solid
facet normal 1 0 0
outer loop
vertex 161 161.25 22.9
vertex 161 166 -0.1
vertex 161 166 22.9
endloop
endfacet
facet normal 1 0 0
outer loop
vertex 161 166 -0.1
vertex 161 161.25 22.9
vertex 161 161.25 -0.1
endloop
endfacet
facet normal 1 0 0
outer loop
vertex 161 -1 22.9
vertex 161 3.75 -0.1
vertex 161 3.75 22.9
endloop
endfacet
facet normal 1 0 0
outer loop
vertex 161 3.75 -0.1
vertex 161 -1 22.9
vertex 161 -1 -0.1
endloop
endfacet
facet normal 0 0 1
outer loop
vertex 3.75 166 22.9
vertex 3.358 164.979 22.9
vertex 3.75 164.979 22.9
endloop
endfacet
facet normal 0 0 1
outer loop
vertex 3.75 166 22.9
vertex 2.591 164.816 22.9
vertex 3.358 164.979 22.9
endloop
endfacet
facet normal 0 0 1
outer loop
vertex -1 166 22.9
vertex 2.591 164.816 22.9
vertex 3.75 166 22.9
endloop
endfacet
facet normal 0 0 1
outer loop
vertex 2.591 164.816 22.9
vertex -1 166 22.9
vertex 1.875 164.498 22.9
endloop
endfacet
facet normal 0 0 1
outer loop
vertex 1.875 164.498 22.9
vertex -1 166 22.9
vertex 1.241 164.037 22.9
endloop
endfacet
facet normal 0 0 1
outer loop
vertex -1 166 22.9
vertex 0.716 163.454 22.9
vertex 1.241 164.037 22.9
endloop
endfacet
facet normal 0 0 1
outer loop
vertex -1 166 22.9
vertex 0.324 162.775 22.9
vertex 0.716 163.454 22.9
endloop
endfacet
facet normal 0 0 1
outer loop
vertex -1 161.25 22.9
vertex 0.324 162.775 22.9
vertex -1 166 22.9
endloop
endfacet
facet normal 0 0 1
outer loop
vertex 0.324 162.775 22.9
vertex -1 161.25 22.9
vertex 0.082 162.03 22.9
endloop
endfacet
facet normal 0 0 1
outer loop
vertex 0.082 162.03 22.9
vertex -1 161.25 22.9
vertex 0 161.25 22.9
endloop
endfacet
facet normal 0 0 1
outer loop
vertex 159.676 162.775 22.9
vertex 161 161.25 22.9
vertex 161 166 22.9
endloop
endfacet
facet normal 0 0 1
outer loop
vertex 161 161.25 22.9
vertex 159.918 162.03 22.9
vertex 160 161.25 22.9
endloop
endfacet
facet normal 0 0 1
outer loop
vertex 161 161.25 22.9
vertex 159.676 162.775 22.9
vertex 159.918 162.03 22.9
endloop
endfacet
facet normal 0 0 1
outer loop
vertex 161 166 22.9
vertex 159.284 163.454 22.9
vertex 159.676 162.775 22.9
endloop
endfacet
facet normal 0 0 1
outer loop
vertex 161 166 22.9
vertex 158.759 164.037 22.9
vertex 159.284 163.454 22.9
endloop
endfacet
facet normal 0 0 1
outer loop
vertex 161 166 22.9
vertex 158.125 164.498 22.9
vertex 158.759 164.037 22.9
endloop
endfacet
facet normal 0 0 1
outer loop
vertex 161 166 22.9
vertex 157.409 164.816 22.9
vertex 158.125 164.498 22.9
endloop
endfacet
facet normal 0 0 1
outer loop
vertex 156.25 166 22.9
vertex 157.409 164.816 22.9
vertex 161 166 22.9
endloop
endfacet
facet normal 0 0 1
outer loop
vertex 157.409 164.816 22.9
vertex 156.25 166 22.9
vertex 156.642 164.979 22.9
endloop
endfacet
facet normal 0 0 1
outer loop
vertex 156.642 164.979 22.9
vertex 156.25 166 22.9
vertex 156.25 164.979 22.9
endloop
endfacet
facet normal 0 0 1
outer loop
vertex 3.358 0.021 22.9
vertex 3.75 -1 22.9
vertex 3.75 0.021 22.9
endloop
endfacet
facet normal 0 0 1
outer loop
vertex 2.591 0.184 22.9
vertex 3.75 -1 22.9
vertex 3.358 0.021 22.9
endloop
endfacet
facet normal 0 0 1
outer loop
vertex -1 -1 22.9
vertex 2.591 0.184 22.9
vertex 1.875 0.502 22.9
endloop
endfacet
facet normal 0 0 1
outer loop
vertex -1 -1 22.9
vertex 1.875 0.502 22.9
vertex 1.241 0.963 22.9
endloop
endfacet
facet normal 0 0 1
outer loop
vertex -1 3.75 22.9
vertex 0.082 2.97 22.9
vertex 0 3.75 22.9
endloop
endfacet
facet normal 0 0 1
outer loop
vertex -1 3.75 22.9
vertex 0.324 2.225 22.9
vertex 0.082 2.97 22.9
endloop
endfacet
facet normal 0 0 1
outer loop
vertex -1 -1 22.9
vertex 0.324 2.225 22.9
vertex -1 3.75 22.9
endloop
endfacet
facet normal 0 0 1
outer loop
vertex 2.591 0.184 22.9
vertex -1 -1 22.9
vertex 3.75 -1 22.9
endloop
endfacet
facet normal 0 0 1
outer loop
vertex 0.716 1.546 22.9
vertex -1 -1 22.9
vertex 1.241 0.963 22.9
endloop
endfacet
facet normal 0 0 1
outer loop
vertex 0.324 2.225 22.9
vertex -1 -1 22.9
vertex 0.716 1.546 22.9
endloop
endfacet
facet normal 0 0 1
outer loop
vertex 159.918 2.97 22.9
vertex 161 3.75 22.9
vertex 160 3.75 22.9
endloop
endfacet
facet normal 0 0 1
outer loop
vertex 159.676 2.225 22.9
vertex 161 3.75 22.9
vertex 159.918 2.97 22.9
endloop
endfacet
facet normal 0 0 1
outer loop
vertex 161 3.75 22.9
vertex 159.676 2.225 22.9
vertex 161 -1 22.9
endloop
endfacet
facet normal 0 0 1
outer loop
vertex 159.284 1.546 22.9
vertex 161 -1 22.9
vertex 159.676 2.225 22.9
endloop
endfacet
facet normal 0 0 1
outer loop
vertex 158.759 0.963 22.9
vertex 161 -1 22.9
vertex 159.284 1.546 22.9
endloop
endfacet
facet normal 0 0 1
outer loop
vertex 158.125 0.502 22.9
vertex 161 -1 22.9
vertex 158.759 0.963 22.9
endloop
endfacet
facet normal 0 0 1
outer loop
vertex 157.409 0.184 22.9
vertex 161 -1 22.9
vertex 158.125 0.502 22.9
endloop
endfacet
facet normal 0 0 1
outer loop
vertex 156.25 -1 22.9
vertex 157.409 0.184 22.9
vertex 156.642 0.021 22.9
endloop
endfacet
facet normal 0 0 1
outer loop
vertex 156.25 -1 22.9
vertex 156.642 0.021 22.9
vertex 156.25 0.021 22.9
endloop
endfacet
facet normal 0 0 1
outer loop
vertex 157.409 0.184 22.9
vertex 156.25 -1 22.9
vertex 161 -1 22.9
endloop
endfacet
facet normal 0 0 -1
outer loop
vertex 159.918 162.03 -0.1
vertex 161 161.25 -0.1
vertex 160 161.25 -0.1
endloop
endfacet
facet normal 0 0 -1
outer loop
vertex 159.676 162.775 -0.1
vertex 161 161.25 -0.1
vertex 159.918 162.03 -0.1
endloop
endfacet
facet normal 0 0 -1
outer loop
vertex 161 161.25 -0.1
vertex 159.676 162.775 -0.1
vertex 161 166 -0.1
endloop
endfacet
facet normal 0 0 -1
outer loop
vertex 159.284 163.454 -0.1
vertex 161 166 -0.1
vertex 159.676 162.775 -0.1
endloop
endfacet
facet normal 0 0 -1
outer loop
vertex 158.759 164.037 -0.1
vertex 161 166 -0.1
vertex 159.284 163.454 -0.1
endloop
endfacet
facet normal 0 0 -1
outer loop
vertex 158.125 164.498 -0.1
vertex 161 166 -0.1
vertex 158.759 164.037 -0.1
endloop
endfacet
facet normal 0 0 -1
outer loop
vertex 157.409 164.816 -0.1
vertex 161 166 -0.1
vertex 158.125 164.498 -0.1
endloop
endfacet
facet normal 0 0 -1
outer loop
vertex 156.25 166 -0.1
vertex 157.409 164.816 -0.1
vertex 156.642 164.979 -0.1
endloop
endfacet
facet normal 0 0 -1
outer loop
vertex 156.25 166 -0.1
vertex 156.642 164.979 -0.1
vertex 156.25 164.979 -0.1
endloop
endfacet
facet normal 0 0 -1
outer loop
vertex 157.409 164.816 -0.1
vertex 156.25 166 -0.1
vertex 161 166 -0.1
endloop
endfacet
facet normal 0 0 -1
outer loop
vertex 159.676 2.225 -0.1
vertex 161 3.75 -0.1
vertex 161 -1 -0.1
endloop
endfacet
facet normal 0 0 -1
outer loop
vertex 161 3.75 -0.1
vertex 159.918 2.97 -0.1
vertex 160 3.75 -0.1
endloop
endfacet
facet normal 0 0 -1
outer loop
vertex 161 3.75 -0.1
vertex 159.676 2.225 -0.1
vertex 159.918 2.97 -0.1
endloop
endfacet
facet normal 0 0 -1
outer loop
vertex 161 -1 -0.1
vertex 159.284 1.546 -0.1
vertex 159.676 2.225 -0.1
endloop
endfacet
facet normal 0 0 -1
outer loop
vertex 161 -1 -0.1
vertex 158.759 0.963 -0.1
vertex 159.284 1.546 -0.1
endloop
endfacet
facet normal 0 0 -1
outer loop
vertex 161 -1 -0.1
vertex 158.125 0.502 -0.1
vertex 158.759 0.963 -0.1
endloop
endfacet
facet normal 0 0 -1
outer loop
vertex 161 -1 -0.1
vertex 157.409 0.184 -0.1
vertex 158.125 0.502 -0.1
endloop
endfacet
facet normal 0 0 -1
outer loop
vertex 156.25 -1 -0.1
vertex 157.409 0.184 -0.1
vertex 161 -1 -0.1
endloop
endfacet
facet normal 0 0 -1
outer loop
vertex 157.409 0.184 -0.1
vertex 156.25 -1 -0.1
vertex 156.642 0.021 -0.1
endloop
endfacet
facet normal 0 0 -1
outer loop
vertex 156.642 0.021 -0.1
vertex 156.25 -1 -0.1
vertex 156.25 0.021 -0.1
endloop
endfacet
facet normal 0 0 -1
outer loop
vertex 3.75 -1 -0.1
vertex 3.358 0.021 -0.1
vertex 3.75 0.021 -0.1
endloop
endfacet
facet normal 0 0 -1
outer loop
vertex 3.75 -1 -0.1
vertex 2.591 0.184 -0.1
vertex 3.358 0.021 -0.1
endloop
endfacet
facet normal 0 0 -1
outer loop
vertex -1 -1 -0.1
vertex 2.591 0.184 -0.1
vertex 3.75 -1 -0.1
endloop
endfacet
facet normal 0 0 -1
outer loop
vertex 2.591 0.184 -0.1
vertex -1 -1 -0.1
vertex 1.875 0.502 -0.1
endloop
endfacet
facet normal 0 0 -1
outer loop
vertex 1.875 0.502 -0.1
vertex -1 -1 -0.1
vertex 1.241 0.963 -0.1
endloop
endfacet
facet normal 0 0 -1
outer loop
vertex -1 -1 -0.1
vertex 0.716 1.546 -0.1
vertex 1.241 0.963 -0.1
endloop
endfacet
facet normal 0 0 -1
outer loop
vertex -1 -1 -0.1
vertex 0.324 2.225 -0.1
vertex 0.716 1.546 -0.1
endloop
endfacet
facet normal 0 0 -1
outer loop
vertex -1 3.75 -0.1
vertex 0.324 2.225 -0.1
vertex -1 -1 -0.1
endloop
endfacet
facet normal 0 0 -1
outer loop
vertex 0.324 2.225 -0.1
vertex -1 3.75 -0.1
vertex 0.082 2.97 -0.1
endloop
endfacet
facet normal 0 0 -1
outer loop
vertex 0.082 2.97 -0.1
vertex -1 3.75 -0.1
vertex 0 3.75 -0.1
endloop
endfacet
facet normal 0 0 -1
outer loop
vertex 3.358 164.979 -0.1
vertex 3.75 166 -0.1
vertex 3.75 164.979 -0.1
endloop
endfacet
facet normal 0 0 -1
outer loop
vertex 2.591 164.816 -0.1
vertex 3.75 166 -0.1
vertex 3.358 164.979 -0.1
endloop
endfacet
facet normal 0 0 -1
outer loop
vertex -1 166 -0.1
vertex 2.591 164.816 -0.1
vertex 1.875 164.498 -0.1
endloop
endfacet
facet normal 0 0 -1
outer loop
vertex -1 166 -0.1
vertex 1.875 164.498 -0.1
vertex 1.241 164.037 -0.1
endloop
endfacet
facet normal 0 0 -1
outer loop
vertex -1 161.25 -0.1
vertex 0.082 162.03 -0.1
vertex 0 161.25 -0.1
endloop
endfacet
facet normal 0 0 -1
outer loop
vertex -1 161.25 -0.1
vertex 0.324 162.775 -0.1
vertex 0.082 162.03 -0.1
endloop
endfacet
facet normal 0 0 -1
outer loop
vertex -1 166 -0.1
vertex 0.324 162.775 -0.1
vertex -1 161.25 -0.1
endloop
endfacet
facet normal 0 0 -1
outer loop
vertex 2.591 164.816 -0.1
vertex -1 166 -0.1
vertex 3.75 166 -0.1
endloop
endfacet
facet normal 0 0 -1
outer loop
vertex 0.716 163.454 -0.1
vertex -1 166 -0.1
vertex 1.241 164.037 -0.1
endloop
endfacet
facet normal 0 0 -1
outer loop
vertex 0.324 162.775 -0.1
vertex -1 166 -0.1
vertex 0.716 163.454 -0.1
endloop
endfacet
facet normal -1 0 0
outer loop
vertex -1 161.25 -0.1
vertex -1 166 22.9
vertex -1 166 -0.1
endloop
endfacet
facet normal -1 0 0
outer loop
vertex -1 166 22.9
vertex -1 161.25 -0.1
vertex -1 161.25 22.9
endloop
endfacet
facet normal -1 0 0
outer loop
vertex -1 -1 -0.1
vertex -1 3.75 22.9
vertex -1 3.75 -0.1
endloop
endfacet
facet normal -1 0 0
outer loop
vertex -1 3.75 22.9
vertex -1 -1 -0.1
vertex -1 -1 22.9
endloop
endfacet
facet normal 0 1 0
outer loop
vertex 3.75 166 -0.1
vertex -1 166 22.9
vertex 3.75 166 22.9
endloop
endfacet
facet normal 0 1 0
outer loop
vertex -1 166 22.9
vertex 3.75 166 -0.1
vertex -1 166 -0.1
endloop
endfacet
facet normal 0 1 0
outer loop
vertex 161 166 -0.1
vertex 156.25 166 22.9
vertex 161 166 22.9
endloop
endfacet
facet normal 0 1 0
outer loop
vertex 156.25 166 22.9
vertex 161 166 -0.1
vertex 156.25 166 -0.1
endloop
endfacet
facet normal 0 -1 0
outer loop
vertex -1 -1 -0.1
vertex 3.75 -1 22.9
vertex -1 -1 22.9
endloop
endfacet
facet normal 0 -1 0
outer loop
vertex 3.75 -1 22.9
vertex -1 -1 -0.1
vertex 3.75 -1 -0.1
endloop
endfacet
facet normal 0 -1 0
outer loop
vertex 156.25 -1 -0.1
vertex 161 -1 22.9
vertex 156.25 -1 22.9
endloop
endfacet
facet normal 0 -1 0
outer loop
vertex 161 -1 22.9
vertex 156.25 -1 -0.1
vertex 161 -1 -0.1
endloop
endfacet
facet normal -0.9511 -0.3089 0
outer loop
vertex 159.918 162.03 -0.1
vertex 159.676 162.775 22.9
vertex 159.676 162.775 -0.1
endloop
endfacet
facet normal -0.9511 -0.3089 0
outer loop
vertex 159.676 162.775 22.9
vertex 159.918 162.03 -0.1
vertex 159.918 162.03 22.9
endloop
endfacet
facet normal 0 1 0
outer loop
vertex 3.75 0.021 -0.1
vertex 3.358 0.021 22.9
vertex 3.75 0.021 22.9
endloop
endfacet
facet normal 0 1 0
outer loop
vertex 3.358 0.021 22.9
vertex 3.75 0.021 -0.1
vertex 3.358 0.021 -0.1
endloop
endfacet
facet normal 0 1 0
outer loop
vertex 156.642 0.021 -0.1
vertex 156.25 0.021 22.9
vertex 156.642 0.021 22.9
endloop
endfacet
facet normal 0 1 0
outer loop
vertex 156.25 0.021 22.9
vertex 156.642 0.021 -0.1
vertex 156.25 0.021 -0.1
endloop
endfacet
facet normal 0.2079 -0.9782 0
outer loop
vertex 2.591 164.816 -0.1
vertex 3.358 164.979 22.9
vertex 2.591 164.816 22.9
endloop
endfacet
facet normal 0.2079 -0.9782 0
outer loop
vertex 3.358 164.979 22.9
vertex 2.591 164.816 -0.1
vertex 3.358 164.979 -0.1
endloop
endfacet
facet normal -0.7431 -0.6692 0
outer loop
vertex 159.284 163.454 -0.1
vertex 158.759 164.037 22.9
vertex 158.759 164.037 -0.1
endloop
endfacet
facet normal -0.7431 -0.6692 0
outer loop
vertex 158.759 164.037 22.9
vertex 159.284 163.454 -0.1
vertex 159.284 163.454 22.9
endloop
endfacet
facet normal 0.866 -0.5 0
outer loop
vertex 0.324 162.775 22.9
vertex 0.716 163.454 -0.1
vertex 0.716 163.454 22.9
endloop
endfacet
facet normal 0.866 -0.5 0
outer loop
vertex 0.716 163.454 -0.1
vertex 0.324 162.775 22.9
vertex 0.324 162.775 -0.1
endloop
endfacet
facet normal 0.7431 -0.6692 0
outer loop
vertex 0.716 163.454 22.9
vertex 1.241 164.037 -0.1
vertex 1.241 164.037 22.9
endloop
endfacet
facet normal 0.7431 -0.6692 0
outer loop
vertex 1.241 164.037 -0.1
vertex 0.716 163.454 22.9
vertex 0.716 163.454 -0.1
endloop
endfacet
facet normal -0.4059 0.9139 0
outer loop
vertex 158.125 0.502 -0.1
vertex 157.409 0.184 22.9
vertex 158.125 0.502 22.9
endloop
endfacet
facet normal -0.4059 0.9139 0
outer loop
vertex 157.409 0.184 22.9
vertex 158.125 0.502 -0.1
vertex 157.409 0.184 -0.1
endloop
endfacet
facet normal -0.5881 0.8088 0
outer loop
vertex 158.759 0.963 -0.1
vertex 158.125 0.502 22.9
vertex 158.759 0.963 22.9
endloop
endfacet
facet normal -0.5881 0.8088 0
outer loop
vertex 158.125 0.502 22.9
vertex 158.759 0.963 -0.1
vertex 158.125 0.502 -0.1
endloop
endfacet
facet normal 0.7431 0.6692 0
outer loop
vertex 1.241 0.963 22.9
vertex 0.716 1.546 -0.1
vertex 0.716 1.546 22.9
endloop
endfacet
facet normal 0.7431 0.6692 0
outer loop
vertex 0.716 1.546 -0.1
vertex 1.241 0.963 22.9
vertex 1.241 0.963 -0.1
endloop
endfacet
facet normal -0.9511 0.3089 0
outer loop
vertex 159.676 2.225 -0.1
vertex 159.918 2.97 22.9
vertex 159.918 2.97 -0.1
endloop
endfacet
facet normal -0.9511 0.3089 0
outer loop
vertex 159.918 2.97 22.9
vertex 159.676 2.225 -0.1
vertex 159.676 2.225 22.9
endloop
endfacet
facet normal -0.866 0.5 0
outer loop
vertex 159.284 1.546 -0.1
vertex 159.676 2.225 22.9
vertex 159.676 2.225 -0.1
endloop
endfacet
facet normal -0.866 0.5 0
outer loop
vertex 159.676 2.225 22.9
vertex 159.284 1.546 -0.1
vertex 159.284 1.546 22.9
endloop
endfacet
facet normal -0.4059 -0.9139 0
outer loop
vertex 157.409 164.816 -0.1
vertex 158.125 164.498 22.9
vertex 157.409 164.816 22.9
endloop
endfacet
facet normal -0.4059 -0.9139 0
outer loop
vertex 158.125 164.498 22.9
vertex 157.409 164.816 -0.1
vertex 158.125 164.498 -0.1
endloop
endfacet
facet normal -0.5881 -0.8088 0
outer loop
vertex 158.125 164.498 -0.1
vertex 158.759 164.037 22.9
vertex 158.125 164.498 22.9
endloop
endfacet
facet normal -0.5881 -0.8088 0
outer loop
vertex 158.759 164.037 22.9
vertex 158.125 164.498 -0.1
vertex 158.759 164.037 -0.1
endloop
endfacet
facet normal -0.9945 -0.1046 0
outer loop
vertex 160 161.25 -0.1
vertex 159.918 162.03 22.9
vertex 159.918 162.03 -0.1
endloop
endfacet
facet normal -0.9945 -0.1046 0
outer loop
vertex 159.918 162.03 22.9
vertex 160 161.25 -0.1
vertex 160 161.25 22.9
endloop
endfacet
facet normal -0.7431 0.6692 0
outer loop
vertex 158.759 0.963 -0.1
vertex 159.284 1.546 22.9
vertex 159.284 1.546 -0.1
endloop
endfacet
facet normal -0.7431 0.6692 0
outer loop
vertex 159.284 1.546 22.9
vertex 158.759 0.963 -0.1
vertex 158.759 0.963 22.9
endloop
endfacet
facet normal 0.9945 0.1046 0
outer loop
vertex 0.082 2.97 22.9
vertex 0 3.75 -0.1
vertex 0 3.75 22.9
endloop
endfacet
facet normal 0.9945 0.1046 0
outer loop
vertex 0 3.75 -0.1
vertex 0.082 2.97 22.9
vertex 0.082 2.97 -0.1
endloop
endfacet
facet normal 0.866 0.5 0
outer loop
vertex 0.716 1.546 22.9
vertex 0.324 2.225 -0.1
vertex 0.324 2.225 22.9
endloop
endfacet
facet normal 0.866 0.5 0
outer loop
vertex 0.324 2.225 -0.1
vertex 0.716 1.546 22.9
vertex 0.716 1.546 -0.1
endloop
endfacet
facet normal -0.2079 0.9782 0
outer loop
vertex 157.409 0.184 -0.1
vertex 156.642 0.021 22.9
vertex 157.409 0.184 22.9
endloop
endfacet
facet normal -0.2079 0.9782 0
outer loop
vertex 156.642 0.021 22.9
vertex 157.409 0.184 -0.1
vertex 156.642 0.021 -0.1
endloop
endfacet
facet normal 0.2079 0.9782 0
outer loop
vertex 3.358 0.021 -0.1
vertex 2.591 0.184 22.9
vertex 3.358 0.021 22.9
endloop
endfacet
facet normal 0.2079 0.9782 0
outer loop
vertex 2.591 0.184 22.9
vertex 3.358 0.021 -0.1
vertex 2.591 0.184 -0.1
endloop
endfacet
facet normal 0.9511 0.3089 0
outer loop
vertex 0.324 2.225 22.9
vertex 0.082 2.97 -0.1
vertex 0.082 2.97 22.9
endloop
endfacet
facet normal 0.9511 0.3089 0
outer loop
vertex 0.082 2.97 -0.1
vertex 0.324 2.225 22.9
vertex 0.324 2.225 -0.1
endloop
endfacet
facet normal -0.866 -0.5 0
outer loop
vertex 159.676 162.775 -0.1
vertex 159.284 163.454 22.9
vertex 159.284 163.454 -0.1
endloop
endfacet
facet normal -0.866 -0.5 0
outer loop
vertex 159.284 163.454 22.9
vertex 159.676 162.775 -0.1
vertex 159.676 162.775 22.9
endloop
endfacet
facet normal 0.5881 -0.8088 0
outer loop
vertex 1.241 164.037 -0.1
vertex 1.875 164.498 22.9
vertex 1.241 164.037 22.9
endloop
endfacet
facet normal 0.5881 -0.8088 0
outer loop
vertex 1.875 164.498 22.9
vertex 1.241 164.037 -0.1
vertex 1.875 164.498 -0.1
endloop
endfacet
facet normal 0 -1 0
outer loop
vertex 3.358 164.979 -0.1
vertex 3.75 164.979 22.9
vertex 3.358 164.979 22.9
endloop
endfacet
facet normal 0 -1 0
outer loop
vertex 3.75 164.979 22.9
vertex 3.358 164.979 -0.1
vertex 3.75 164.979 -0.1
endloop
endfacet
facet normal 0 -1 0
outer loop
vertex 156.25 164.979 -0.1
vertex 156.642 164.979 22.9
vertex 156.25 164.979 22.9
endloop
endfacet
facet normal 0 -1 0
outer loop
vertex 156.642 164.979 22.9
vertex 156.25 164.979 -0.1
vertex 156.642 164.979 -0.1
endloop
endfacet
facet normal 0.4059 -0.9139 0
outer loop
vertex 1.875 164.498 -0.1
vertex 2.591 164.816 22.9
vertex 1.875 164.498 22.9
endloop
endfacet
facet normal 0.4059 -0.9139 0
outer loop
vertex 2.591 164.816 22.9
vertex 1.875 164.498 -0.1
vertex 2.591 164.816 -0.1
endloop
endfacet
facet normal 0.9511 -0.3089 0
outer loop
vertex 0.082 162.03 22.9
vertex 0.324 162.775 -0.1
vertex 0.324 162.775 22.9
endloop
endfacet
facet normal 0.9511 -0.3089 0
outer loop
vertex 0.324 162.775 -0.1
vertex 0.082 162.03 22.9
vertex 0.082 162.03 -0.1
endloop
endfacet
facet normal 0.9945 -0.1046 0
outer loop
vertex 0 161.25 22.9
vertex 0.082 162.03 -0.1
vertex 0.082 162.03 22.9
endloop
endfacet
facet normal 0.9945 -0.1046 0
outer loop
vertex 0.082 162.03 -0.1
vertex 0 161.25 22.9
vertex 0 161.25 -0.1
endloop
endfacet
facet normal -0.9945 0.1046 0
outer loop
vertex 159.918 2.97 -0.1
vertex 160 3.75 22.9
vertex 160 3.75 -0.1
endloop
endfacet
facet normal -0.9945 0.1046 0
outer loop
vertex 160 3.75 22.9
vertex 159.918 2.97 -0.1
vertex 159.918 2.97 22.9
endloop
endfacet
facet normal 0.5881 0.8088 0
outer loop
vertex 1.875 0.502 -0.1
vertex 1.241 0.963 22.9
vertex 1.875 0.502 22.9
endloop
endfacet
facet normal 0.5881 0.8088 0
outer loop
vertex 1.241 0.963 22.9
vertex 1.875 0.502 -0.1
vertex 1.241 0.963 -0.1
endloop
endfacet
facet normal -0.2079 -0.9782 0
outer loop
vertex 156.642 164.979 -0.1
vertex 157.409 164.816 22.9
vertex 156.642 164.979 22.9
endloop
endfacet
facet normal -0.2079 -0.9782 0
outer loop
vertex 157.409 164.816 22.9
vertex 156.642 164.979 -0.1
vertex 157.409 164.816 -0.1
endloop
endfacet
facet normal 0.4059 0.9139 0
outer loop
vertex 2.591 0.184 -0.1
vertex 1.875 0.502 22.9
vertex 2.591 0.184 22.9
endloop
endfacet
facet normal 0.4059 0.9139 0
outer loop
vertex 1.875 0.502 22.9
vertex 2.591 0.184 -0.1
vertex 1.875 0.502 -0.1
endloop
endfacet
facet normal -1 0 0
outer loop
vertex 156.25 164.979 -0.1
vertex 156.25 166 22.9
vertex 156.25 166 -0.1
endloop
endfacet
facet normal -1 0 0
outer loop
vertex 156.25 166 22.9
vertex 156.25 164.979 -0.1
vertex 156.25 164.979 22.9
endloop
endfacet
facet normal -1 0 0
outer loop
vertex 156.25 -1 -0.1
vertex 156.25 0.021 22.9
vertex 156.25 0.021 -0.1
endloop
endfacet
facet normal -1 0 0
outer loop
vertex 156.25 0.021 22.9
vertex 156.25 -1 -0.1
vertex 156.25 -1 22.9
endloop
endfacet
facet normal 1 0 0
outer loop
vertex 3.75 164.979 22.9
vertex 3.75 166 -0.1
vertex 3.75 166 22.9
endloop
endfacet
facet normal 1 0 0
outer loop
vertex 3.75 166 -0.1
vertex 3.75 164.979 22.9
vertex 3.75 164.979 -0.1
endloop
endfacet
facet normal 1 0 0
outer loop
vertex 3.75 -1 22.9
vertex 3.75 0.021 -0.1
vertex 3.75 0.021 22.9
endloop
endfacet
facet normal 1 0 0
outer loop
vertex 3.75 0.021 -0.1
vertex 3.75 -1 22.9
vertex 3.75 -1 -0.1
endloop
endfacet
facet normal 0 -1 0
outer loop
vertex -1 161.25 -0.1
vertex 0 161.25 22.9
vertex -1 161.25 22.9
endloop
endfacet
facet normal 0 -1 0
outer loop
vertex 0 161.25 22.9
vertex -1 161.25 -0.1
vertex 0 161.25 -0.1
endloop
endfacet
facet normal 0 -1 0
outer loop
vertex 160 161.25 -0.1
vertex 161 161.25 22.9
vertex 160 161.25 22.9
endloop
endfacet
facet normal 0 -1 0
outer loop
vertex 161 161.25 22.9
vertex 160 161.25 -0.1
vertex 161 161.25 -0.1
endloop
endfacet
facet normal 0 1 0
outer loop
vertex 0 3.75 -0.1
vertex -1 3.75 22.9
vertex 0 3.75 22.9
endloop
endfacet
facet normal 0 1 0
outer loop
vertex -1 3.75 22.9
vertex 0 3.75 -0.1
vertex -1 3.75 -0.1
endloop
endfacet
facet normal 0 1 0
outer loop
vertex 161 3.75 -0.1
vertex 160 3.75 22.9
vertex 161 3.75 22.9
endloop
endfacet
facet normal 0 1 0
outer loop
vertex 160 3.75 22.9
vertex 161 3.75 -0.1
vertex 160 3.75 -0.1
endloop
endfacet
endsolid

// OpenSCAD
inset = 0.5;
cornerRad=3.75;
trayHt=25;
xDim = 160;
yDim = 165;

epsilon = 0.1;

translate([0,0,-1.1]) difference() {
   translate([-1,-1,1]) cube([xDim+2,yDim+2,trayHt-2]);
   trayHull();
   translate([cornerRad,-2,-0.1]) cube([xDim -2*cornerRad, yDim+4, trayHt+0.5]);
   translate([-2,cornerRad,-0.1]) cube([xDim+4, yDim-2*cornerRad, trayHt+0.5]);
}

/* trayHull() -- this is the hull of the thing */
module trayHull() {
   hull() {
      /* top, slightly inset */
      translate([cornerRad, cornerRad, -epsilon])
         cylinder($fn=30, r=cornerRad,h=trayHt+epsilon);
      translate([xDim - cornerRad, cornerRad, -epsilon]) 
         cylinder($fn=30, r=cornerRad,h=trayHt+epsilon);
      translate([cornerRad, yDim - cornerRad, -epsilon]) 
         cylinder($fn=30, r=cornerRad,h=trayHt+epsilon);
      translate([xDim - cornerRad, yDim - cornerRad, -epsilon]) 
         cylinder($fn=30, r=cornerRad,h=trayHt+2*epsilon);
   }
}
